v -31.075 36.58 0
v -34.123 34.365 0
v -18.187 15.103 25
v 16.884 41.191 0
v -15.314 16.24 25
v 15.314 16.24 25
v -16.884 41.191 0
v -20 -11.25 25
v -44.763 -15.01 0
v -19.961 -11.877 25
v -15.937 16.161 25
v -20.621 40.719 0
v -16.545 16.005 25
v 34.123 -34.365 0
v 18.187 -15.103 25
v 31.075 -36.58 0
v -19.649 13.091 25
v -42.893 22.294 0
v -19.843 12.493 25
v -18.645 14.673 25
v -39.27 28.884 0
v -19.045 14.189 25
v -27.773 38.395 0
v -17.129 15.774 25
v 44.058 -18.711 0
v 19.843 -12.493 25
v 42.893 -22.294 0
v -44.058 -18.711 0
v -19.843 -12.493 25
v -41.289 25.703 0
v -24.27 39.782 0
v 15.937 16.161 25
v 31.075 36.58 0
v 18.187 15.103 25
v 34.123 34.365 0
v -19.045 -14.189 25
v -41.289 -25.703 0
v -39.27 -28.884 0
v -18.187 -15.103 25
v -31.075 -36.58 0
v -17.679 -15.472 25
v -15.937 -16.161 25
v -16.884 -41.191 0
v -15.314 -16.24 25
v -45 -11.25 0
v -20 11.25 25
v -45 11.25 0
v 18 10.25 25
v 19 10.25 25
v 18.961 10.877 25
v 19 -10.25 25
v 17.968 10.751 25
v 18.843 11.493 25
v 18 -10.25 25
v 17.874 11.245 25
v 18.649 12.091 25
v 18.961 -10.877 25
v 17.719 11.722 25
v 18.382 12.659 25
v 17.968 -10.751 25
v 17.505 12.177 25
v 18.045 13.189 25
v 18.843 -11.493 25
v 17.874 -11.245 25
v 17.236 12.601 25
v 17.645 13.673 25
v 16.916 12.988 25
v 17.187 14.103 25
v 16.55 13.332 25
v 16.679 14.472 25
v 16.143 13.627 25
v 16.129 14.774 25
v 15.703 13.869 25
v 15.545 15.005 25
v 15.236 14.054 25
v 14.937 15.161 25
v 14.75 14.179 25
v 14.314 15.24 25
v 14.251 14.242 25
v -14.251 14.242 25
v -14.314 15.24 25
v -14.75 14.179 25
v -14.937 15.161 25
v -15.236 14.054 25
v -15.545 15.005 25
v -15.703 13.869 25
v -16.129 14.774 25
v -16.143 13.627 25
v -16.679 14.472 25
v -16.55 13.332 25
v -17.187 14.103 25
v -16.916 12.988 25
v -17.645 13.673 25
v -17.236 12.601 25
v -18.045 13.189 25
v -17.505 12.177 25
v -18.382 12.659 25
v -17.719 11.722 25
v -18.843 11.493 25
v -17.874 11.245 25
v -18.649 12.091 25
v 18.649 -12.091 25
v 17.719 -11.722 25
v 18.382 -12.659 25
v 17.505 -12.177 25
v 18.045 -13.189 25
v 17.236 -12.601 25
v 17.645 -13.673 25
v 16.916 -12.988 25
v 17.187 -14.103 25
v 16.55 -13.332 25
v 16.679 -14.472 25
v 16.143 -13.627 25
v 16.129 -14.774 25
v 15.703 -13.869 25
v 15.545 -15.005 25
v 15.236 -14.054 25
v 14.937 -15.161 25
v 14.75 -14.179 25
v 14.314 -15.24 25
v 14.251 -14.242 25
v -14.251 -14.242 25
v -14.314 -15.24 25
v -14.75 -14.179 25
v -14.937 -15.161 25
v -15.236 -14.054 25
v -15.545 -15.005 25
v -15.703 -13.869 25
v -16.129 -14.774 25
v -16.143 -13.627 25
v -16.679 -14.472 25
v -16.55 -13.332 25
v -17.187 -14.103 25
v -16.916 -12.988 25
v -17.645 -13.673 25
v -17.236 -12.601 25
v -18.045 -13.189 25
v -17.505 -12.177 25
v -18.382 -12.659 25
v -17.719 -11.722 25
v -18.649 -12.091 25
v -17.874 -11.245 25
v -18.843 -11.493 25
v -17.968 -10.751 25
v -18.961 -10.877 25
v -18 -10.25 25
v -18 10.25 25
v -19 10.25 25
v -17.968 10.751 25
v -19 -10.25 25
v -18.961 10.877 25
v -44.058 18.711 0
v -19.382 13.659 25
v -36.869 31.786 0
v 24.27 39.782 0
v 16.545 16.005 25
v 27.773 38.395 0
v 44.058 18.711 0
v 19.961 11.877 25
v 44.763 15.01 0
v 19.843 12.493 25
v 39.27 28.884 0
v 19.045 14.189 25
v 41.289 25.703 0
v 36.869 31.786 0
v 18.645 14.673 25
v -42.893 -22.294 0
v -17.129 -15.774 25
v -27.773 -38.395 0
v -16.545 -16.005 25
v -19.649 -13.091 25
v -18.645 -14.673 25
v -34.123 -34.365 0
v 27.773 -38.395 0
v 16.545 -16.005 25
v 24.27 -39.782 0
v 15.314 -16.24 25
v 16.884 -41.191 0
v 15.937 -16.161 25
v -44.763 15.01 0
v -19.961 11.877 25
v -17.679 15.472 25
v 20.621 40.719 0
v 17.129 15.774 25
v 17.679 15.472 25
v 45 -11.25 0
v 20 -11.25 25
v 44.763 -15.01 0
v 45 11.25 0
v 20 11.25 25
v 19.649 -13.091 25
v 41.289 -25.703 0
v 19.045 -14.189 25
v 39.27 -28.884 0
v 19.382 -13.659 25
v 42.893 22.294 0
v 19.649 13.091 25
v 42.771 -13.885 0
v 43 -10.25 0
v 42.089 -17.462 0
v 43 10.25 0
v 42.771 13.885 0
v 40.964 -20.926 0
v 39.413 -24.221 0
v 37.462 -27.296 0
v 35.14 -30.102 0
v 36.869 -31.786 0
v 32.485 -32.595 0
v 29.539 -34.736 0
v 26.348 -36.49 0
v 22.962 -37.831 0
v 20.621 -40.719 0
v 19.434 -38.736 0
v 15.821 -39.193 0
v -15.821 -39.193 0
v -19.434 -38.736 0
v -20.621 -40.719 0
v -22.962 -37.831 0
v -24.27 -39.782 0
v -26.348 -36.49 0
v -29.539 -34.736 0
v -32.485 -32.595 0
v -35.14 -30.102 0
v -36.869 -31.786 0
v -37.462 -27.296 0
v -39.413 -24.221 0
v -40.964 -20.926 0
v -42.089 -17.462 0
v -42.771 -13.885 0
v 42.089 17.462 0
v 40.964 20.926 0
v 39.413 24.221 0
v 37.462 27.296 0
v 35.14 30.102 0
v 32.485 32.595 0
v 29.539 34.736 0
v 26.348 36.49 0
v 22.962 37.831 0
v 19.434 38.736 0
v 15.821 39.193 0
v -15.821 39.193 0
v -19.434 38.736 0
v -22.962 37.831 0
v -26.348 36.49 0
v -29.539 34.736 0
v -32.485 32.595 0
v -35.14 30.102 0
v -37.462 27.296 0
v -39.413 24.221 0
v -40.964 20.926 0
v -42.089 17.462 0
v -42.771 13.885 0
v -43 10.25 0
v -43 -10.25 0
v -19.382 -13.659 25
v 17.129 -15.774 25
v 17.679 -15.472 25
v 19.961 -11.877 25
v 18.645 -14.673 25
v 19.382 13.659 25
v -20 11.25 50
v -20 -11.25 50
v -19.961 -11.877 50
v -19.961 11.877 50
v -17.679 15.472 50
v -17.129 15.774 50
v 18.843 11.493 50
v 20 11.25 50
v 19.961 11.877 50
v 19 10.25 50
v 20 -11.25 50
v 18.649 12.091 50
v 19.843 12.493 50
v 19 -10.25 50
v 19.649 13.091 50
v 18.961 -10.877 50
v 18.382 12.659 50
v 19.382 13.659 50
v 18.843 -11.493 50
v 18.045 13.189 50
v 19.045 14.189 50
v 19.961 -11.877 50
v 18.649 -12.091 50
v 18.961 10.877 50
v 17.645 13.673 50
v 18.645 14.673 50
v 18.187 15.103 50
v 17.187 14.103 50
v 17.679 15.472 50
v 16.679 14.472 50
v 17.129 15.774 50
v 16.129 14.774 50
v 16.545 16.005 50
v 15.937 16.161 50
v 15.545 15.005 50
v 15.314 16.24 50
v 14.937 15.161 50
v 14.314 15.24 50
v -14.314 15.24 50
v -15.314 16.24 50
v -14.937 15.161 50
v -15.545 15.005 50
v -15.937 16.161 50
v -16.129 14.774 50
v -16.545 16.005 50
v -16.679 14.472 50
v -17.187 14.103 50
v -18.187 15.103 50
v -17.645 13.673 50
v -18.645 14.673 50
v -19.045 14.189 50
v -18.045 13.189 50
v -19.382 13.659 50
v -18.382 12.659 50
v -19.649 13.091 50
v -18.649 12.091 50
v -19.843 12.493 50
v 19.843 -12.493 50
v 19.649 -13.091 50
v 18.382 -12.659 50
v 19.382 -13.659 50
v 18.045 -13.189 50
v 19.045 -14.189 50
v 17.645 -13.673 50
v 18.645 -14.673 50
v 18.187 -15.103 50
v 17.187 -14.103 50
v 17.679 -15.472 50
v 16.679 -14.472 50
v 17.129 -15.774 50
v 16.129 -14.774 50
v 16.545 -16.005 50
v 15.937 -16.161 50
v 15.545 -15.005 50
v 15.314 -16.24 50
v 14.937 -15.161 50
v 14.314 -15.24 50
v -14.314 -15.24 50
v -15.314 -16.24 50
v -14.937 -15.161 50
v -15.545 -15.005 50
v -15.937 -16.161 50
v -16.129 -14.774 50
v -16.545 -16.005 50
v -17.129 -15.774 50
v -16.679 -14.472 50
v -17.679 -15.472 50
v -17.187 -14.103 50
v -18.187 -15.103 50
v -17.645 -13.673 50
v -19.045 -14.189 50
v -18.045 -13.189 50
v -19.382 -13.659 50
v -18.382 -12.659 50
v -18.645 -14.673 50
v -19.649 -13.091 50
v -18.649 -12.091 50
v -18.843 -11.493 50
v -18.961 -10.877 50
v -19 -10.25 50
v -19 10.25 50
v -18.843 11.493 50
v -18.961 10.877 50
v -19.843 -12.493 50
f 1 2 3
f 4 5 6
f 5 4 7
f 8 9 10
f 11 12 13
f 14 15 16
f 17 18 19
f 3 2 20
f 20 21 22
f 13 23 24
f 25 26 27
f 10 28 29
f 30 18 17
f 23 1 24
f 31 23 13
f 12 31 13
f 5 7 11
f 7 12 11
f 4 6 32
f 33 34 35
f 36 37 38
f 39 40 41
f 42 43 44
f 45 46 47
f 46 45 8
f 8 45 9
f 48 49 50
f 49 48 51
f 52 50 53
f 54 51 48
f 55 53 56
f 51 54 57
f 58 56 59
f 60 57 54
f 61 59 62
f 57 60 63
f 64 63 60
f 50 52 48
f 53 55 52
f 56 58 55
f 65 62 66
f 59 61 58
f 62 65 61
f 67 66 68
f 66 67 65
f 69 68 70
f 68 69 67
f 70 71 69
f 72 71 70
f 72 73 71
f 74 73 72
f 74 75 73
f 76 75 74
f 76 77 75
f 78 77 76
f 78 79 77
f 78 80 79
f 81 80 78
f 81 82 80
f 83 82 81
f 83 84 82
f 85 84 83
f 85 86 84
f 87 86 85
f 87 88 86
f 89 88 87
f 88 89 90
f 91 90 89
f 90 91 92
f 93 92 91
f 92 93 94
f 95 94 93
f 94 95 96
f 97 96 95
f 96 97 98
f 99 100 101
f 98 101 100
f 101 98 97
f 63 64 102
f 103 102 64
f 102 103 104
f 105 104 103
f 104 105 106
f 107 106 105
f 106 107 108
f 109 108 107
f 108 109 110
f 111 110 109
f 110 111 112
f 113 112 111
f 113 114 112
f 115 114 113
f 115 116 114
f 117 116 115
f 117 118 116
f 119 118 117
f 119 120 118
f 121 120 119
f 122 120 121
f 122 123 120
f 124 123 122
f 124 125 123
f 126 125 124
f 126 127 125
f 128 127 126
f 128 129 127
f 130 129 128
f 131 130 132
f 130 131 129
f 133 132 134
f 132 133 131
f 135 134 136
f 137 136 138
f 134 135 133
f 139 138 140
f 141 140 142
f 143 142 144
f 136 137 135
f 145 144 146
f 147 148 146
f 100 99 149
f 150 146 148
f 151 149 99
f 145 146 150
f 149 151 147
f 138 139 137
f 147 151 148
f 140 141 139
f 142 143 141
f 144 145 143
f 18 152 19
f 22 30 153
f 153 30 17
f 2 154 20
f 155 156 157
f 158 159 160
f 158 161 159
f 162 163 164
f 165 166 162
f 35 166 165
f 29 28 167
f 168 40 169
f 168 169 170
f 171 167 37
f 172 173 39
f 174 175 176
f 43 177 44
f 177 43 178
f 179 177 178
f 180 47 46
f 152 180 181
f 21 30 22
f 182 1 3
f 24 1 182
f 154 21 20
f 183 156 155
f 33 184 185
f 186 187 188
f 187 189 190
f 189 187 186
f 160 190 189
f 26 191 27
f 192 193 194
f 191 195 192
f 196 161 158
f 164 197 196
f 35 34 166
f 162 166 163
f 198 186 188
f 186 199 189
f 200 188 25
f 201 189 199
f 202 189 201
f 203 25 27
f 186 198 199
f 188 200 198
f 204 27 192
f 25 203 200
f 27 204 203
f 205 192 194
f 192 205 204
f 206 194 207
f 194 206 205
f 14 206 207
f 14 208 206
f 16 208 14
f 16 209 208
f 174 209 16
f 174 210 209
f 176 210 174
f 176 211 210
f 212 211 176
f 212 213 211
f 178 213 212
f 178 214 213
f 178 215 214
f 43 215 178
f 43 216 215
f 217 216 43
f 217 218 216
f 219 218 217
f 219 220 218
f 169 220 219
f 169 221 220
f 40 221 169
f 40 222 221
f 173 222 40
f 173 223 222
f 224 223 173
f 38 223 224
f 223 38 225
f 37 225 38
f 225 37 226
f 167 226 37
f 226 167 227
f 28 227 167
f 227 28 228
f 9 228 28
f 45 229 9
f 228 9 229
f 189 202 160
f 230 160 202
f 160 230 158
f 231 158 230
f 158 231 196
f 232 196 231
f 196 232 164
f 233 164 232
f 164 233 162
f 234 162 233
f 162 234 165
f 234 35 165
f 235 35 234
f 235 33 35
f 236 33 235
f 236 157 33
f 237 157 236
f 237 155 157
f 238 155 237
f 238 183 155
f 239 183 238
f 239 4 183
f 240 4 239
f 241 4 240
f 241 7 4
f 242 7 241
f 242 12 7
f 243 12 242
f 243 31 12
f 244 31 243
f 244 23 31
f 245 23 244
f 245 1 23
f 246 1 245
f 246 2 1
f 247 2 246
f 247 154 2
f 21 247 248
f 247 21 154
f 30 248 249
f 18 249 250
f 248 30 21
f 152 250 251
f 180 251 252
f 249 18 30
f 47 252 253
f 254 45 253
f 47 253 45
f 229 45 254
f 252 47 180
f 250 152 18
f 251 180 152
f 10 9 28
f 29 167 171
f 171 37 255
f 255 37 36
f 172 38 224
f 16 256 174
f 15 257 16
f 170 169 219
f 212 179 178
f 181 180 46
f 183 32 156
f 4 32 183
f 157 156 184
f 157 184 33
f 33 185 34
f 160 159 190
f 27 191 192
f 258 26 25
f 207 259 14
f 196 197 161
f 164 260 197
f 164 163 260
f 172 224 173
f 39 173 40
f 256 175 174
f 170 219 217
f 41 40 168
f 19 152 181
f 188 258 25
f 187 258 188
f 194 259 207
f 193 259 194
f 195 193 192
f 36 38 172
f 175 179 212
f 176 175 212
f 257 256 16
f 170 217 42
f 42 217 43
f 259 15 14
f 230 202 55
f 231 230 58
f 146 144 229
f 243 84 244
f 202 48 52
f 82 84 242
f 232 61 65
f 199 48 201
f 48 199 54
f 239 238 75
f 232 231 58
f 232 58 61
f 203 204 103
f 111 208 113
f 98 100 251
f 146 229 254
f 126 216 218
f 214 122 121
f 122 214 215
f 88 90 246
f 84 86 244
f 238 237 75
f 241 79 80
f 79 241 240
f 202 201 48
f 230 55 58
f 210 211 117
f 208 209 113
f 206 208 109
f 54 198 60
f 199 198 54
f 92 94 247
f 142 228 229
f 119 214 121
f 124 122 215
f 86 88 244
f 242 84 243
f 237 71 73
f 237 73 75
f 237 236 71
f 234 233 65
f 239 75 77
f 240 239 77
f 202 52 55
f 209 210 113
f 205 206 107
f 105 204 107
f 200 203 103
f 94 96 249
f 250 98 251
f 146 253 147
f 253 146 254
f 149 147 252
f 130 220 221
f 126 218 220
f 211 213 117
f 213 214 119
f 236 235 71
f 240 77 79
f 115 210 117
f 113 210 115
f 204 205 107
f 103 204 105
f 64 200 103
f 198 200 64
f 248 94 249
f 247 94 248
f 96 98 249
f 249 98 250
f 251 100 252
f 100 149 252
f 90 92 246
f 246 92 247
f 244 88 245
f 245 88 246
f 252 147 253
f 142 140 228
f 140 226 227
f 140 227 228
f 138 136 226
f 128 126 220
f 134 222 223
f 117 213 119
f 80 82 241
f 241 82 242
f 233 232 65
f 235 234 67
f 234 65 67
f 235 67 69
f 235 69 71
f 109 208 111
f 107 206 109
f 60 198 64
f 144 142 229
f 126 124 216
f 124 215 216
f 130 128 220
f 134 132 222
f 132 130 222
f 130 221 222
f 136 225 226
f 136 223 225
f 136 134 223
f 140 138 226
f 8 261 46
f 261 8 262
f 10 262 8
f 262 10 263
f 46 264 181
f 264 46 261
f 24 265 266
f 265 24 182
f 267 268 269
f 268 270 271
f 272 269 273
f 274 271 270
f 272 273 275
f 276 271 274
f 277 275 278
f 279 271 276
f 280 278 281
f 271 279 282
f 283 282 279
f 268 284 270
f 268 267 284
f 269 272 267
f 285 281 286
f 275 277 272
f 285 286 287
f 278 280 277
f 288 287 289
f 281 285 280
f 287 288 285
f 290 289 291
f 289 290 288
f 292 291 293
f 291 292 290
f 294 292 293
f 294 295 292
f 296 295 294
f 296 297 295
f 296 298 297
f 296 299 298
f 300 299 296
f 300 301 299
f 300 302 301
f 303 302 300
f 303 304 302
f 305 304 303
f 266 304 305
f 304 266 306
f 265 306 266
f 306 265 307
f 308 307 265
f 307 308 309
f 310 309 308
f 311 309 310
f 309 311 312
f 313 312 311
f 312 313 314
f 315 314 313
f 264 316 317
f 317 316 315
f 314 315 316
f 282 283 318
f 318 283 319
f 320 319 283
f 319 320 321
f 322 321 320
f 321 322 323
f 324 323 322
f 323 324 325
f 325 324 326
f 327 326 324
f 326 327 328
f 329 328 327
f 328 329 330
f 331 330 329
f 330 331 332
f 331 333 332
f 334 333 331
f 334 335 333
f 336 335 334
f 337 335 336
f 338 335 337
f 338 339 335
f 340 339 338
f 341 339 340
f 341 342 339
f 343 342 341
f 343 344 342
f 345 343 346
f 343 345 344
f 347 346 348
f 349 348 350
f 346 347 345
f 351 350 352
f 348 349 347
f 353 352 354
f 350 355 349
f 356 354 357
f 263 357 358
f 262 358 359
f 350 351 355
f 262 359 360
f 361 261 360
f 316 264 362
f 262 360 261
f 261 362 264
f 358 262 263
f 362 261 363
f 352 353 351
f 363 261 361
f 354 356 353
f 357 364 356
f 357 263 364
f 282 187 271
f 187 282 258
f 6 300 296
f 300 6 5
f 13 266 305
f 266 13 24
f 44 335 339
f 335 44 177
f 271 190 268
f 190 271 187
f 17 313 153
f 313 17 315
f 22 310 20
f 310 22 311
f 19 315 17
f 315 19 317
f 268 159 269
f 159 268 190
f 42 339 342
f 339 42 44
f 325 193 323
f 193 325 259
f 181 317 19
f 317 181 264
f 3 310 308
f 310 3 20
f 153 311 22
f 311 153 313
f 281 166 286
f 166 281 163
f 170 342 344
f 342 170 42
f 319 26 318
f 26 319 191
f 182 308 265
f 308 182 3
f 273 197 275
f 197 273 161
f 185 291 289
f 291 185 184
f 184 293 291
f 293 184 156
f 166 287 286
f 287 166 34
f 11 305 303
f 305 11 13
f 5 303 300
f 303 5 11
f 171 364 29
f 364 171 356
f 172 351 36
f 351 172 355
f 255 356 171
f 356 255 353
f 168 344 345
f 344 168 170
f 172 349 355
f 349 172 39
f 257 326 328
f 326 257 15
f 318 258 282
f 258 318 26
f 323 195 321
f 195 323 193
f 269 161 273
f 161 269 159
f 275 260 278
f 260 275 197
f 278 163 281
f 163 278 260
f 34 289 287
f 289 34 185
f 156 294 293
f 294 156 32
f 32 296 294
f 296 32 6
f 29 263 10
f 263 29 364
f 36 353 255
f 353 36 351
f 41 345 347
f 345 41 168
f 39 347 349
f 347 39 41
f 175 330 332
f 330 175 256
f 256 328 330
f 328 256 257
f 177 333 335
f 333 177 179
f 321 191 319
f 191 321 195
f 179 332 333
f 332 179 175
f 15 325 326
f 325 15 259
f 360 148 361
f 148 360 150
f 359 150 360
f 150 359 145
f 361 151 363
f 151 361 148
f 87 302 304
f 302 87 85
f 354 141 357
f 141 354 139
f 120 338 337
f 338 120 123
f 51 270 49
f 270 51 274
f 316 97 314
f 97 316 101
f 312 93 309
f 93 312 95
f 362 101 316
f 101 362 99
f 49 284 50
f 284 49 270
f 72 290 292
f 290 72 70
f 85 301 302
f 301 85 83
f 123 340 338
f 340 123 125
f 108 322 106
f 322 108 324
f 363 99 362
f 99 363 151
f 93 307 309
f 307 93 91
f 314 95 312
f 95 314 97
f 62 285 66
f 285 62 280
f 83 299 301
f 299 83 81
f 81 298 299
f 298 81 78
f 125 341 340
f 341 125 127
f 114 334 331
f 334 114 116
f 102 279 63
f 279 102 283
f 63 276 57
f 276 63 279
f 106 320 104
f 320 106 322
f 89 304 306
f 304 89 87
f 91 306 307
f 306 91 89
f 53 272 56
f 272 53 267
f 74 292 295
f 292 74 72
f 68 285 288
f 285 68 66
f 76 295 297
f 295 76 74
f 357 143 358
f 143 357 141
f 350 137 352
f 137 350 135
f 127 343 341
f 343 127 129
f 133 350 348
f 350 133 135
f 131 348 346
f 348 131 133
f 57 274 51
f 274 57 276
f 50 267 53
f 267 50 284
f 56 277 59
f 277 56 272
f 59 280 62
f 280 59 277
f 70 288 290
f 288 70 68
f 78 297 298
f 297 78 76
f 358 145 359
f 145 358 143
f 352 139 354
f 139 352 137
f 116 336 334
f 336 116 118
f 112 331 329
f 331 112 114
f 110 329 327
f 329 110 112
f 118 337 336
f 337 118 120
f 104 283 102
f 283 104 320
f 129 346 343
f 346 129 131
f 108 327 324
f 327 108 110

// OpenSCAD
$fn = 50;


difference() {
	union() {
		translate(v = [0, 0, 0]) {
			rotate(a = [0, 0, 0]) {
				difference() {
					union() {
						hull() {
							translate(v = [-15.0000000000, 11.2500000000, 0]) {
								cylinder(h = 25, r = 5, r1 = 30.0000000000, r2 = 5);
							}
							translate(v = [15.0000000000, 11.2500000000, 0]) {
								cylinder(h = 25, r = 5, r1 = 30.0000000000, r2 = 5);
							}
							translate(v = [-15.0000000000, -11.2500000000, 0]) {
								cylinder(h = 25, r = 5, r1 = 30.0000000000, r2 = 5);
							}
							translate(v = [15.0000000000, -11.2500000000, 0]) {
								cylinder(h = 25, r = 5, r1 = 30.0000000000, r2 = 5);
							}
						}
					}
					union() {
						hull() {
							translate(v = [-14.0000000000, 10.2500000000, 0]) {
								cylinder(h = 25, r = 5, r1 = 29.0000000000, r2 = 4);
							}
							translate(v = [14.0000000000, 10.2500000000, 0]) {
								cylinder(h = 25, r = 5, r1 = 29.0000000000, r2 = 4);
							}
							translate(v = [-14.0000000000, -10.2500000000, 0]) {
								cylinder(h = 25, r = 5, r1 = 29.0000000000, r2 = 4);
							}
							translate(v = [14.0000000000, -10.2500000000, 0]) {
								cylinder(h = 25, r = 5, r1 = 29.0000000000, r2 = 4);
							}
						}
					}
				}
			}
		}
		translate(v = [0, 0, 25]) {
			rotate(a = [0, 0, 0]) {
				difference() {
					union() {
						hull() {
							translate(v = [-15.0000000000, 11.2500000000, 0]) {
								cylinder(h = 25, r = 5);
							}
							translate(v = [15.0000000000, 11.2500000000, 0]) {
								cylinder(h = 25, r = 5);
							}
							translate(v = [-15.0000000000, -11.2500000000, 0]) {
								cylinder(h = 25, r = 5);
							}
							translate(v = [15.0000000000, -11.2500000000, 0]) {
								cylinder(h = 25, r = 5);
							}
						}
					}
					union() {
						hull() {
							translate(v = [-14.0000000000, 10.2500000000, 0]) {
								cylinder(h = 25, r = 5);
							}
							translate(v = [14.0000000000, 10.2500000000, 0]) {
								cylinder(h = 25, r = 5);
							}
							translate(v = [-14.0000000000, -10.2500000000, 0]) {
								cylinder(h = 25, r = 5);
							}
							translate(v = [14.0000000000, -10.2500000000, 0]) {
								cylinder(h = 25, r = 5);
							}
						}
					}
				}
			}
		}
	}
	union();
}
